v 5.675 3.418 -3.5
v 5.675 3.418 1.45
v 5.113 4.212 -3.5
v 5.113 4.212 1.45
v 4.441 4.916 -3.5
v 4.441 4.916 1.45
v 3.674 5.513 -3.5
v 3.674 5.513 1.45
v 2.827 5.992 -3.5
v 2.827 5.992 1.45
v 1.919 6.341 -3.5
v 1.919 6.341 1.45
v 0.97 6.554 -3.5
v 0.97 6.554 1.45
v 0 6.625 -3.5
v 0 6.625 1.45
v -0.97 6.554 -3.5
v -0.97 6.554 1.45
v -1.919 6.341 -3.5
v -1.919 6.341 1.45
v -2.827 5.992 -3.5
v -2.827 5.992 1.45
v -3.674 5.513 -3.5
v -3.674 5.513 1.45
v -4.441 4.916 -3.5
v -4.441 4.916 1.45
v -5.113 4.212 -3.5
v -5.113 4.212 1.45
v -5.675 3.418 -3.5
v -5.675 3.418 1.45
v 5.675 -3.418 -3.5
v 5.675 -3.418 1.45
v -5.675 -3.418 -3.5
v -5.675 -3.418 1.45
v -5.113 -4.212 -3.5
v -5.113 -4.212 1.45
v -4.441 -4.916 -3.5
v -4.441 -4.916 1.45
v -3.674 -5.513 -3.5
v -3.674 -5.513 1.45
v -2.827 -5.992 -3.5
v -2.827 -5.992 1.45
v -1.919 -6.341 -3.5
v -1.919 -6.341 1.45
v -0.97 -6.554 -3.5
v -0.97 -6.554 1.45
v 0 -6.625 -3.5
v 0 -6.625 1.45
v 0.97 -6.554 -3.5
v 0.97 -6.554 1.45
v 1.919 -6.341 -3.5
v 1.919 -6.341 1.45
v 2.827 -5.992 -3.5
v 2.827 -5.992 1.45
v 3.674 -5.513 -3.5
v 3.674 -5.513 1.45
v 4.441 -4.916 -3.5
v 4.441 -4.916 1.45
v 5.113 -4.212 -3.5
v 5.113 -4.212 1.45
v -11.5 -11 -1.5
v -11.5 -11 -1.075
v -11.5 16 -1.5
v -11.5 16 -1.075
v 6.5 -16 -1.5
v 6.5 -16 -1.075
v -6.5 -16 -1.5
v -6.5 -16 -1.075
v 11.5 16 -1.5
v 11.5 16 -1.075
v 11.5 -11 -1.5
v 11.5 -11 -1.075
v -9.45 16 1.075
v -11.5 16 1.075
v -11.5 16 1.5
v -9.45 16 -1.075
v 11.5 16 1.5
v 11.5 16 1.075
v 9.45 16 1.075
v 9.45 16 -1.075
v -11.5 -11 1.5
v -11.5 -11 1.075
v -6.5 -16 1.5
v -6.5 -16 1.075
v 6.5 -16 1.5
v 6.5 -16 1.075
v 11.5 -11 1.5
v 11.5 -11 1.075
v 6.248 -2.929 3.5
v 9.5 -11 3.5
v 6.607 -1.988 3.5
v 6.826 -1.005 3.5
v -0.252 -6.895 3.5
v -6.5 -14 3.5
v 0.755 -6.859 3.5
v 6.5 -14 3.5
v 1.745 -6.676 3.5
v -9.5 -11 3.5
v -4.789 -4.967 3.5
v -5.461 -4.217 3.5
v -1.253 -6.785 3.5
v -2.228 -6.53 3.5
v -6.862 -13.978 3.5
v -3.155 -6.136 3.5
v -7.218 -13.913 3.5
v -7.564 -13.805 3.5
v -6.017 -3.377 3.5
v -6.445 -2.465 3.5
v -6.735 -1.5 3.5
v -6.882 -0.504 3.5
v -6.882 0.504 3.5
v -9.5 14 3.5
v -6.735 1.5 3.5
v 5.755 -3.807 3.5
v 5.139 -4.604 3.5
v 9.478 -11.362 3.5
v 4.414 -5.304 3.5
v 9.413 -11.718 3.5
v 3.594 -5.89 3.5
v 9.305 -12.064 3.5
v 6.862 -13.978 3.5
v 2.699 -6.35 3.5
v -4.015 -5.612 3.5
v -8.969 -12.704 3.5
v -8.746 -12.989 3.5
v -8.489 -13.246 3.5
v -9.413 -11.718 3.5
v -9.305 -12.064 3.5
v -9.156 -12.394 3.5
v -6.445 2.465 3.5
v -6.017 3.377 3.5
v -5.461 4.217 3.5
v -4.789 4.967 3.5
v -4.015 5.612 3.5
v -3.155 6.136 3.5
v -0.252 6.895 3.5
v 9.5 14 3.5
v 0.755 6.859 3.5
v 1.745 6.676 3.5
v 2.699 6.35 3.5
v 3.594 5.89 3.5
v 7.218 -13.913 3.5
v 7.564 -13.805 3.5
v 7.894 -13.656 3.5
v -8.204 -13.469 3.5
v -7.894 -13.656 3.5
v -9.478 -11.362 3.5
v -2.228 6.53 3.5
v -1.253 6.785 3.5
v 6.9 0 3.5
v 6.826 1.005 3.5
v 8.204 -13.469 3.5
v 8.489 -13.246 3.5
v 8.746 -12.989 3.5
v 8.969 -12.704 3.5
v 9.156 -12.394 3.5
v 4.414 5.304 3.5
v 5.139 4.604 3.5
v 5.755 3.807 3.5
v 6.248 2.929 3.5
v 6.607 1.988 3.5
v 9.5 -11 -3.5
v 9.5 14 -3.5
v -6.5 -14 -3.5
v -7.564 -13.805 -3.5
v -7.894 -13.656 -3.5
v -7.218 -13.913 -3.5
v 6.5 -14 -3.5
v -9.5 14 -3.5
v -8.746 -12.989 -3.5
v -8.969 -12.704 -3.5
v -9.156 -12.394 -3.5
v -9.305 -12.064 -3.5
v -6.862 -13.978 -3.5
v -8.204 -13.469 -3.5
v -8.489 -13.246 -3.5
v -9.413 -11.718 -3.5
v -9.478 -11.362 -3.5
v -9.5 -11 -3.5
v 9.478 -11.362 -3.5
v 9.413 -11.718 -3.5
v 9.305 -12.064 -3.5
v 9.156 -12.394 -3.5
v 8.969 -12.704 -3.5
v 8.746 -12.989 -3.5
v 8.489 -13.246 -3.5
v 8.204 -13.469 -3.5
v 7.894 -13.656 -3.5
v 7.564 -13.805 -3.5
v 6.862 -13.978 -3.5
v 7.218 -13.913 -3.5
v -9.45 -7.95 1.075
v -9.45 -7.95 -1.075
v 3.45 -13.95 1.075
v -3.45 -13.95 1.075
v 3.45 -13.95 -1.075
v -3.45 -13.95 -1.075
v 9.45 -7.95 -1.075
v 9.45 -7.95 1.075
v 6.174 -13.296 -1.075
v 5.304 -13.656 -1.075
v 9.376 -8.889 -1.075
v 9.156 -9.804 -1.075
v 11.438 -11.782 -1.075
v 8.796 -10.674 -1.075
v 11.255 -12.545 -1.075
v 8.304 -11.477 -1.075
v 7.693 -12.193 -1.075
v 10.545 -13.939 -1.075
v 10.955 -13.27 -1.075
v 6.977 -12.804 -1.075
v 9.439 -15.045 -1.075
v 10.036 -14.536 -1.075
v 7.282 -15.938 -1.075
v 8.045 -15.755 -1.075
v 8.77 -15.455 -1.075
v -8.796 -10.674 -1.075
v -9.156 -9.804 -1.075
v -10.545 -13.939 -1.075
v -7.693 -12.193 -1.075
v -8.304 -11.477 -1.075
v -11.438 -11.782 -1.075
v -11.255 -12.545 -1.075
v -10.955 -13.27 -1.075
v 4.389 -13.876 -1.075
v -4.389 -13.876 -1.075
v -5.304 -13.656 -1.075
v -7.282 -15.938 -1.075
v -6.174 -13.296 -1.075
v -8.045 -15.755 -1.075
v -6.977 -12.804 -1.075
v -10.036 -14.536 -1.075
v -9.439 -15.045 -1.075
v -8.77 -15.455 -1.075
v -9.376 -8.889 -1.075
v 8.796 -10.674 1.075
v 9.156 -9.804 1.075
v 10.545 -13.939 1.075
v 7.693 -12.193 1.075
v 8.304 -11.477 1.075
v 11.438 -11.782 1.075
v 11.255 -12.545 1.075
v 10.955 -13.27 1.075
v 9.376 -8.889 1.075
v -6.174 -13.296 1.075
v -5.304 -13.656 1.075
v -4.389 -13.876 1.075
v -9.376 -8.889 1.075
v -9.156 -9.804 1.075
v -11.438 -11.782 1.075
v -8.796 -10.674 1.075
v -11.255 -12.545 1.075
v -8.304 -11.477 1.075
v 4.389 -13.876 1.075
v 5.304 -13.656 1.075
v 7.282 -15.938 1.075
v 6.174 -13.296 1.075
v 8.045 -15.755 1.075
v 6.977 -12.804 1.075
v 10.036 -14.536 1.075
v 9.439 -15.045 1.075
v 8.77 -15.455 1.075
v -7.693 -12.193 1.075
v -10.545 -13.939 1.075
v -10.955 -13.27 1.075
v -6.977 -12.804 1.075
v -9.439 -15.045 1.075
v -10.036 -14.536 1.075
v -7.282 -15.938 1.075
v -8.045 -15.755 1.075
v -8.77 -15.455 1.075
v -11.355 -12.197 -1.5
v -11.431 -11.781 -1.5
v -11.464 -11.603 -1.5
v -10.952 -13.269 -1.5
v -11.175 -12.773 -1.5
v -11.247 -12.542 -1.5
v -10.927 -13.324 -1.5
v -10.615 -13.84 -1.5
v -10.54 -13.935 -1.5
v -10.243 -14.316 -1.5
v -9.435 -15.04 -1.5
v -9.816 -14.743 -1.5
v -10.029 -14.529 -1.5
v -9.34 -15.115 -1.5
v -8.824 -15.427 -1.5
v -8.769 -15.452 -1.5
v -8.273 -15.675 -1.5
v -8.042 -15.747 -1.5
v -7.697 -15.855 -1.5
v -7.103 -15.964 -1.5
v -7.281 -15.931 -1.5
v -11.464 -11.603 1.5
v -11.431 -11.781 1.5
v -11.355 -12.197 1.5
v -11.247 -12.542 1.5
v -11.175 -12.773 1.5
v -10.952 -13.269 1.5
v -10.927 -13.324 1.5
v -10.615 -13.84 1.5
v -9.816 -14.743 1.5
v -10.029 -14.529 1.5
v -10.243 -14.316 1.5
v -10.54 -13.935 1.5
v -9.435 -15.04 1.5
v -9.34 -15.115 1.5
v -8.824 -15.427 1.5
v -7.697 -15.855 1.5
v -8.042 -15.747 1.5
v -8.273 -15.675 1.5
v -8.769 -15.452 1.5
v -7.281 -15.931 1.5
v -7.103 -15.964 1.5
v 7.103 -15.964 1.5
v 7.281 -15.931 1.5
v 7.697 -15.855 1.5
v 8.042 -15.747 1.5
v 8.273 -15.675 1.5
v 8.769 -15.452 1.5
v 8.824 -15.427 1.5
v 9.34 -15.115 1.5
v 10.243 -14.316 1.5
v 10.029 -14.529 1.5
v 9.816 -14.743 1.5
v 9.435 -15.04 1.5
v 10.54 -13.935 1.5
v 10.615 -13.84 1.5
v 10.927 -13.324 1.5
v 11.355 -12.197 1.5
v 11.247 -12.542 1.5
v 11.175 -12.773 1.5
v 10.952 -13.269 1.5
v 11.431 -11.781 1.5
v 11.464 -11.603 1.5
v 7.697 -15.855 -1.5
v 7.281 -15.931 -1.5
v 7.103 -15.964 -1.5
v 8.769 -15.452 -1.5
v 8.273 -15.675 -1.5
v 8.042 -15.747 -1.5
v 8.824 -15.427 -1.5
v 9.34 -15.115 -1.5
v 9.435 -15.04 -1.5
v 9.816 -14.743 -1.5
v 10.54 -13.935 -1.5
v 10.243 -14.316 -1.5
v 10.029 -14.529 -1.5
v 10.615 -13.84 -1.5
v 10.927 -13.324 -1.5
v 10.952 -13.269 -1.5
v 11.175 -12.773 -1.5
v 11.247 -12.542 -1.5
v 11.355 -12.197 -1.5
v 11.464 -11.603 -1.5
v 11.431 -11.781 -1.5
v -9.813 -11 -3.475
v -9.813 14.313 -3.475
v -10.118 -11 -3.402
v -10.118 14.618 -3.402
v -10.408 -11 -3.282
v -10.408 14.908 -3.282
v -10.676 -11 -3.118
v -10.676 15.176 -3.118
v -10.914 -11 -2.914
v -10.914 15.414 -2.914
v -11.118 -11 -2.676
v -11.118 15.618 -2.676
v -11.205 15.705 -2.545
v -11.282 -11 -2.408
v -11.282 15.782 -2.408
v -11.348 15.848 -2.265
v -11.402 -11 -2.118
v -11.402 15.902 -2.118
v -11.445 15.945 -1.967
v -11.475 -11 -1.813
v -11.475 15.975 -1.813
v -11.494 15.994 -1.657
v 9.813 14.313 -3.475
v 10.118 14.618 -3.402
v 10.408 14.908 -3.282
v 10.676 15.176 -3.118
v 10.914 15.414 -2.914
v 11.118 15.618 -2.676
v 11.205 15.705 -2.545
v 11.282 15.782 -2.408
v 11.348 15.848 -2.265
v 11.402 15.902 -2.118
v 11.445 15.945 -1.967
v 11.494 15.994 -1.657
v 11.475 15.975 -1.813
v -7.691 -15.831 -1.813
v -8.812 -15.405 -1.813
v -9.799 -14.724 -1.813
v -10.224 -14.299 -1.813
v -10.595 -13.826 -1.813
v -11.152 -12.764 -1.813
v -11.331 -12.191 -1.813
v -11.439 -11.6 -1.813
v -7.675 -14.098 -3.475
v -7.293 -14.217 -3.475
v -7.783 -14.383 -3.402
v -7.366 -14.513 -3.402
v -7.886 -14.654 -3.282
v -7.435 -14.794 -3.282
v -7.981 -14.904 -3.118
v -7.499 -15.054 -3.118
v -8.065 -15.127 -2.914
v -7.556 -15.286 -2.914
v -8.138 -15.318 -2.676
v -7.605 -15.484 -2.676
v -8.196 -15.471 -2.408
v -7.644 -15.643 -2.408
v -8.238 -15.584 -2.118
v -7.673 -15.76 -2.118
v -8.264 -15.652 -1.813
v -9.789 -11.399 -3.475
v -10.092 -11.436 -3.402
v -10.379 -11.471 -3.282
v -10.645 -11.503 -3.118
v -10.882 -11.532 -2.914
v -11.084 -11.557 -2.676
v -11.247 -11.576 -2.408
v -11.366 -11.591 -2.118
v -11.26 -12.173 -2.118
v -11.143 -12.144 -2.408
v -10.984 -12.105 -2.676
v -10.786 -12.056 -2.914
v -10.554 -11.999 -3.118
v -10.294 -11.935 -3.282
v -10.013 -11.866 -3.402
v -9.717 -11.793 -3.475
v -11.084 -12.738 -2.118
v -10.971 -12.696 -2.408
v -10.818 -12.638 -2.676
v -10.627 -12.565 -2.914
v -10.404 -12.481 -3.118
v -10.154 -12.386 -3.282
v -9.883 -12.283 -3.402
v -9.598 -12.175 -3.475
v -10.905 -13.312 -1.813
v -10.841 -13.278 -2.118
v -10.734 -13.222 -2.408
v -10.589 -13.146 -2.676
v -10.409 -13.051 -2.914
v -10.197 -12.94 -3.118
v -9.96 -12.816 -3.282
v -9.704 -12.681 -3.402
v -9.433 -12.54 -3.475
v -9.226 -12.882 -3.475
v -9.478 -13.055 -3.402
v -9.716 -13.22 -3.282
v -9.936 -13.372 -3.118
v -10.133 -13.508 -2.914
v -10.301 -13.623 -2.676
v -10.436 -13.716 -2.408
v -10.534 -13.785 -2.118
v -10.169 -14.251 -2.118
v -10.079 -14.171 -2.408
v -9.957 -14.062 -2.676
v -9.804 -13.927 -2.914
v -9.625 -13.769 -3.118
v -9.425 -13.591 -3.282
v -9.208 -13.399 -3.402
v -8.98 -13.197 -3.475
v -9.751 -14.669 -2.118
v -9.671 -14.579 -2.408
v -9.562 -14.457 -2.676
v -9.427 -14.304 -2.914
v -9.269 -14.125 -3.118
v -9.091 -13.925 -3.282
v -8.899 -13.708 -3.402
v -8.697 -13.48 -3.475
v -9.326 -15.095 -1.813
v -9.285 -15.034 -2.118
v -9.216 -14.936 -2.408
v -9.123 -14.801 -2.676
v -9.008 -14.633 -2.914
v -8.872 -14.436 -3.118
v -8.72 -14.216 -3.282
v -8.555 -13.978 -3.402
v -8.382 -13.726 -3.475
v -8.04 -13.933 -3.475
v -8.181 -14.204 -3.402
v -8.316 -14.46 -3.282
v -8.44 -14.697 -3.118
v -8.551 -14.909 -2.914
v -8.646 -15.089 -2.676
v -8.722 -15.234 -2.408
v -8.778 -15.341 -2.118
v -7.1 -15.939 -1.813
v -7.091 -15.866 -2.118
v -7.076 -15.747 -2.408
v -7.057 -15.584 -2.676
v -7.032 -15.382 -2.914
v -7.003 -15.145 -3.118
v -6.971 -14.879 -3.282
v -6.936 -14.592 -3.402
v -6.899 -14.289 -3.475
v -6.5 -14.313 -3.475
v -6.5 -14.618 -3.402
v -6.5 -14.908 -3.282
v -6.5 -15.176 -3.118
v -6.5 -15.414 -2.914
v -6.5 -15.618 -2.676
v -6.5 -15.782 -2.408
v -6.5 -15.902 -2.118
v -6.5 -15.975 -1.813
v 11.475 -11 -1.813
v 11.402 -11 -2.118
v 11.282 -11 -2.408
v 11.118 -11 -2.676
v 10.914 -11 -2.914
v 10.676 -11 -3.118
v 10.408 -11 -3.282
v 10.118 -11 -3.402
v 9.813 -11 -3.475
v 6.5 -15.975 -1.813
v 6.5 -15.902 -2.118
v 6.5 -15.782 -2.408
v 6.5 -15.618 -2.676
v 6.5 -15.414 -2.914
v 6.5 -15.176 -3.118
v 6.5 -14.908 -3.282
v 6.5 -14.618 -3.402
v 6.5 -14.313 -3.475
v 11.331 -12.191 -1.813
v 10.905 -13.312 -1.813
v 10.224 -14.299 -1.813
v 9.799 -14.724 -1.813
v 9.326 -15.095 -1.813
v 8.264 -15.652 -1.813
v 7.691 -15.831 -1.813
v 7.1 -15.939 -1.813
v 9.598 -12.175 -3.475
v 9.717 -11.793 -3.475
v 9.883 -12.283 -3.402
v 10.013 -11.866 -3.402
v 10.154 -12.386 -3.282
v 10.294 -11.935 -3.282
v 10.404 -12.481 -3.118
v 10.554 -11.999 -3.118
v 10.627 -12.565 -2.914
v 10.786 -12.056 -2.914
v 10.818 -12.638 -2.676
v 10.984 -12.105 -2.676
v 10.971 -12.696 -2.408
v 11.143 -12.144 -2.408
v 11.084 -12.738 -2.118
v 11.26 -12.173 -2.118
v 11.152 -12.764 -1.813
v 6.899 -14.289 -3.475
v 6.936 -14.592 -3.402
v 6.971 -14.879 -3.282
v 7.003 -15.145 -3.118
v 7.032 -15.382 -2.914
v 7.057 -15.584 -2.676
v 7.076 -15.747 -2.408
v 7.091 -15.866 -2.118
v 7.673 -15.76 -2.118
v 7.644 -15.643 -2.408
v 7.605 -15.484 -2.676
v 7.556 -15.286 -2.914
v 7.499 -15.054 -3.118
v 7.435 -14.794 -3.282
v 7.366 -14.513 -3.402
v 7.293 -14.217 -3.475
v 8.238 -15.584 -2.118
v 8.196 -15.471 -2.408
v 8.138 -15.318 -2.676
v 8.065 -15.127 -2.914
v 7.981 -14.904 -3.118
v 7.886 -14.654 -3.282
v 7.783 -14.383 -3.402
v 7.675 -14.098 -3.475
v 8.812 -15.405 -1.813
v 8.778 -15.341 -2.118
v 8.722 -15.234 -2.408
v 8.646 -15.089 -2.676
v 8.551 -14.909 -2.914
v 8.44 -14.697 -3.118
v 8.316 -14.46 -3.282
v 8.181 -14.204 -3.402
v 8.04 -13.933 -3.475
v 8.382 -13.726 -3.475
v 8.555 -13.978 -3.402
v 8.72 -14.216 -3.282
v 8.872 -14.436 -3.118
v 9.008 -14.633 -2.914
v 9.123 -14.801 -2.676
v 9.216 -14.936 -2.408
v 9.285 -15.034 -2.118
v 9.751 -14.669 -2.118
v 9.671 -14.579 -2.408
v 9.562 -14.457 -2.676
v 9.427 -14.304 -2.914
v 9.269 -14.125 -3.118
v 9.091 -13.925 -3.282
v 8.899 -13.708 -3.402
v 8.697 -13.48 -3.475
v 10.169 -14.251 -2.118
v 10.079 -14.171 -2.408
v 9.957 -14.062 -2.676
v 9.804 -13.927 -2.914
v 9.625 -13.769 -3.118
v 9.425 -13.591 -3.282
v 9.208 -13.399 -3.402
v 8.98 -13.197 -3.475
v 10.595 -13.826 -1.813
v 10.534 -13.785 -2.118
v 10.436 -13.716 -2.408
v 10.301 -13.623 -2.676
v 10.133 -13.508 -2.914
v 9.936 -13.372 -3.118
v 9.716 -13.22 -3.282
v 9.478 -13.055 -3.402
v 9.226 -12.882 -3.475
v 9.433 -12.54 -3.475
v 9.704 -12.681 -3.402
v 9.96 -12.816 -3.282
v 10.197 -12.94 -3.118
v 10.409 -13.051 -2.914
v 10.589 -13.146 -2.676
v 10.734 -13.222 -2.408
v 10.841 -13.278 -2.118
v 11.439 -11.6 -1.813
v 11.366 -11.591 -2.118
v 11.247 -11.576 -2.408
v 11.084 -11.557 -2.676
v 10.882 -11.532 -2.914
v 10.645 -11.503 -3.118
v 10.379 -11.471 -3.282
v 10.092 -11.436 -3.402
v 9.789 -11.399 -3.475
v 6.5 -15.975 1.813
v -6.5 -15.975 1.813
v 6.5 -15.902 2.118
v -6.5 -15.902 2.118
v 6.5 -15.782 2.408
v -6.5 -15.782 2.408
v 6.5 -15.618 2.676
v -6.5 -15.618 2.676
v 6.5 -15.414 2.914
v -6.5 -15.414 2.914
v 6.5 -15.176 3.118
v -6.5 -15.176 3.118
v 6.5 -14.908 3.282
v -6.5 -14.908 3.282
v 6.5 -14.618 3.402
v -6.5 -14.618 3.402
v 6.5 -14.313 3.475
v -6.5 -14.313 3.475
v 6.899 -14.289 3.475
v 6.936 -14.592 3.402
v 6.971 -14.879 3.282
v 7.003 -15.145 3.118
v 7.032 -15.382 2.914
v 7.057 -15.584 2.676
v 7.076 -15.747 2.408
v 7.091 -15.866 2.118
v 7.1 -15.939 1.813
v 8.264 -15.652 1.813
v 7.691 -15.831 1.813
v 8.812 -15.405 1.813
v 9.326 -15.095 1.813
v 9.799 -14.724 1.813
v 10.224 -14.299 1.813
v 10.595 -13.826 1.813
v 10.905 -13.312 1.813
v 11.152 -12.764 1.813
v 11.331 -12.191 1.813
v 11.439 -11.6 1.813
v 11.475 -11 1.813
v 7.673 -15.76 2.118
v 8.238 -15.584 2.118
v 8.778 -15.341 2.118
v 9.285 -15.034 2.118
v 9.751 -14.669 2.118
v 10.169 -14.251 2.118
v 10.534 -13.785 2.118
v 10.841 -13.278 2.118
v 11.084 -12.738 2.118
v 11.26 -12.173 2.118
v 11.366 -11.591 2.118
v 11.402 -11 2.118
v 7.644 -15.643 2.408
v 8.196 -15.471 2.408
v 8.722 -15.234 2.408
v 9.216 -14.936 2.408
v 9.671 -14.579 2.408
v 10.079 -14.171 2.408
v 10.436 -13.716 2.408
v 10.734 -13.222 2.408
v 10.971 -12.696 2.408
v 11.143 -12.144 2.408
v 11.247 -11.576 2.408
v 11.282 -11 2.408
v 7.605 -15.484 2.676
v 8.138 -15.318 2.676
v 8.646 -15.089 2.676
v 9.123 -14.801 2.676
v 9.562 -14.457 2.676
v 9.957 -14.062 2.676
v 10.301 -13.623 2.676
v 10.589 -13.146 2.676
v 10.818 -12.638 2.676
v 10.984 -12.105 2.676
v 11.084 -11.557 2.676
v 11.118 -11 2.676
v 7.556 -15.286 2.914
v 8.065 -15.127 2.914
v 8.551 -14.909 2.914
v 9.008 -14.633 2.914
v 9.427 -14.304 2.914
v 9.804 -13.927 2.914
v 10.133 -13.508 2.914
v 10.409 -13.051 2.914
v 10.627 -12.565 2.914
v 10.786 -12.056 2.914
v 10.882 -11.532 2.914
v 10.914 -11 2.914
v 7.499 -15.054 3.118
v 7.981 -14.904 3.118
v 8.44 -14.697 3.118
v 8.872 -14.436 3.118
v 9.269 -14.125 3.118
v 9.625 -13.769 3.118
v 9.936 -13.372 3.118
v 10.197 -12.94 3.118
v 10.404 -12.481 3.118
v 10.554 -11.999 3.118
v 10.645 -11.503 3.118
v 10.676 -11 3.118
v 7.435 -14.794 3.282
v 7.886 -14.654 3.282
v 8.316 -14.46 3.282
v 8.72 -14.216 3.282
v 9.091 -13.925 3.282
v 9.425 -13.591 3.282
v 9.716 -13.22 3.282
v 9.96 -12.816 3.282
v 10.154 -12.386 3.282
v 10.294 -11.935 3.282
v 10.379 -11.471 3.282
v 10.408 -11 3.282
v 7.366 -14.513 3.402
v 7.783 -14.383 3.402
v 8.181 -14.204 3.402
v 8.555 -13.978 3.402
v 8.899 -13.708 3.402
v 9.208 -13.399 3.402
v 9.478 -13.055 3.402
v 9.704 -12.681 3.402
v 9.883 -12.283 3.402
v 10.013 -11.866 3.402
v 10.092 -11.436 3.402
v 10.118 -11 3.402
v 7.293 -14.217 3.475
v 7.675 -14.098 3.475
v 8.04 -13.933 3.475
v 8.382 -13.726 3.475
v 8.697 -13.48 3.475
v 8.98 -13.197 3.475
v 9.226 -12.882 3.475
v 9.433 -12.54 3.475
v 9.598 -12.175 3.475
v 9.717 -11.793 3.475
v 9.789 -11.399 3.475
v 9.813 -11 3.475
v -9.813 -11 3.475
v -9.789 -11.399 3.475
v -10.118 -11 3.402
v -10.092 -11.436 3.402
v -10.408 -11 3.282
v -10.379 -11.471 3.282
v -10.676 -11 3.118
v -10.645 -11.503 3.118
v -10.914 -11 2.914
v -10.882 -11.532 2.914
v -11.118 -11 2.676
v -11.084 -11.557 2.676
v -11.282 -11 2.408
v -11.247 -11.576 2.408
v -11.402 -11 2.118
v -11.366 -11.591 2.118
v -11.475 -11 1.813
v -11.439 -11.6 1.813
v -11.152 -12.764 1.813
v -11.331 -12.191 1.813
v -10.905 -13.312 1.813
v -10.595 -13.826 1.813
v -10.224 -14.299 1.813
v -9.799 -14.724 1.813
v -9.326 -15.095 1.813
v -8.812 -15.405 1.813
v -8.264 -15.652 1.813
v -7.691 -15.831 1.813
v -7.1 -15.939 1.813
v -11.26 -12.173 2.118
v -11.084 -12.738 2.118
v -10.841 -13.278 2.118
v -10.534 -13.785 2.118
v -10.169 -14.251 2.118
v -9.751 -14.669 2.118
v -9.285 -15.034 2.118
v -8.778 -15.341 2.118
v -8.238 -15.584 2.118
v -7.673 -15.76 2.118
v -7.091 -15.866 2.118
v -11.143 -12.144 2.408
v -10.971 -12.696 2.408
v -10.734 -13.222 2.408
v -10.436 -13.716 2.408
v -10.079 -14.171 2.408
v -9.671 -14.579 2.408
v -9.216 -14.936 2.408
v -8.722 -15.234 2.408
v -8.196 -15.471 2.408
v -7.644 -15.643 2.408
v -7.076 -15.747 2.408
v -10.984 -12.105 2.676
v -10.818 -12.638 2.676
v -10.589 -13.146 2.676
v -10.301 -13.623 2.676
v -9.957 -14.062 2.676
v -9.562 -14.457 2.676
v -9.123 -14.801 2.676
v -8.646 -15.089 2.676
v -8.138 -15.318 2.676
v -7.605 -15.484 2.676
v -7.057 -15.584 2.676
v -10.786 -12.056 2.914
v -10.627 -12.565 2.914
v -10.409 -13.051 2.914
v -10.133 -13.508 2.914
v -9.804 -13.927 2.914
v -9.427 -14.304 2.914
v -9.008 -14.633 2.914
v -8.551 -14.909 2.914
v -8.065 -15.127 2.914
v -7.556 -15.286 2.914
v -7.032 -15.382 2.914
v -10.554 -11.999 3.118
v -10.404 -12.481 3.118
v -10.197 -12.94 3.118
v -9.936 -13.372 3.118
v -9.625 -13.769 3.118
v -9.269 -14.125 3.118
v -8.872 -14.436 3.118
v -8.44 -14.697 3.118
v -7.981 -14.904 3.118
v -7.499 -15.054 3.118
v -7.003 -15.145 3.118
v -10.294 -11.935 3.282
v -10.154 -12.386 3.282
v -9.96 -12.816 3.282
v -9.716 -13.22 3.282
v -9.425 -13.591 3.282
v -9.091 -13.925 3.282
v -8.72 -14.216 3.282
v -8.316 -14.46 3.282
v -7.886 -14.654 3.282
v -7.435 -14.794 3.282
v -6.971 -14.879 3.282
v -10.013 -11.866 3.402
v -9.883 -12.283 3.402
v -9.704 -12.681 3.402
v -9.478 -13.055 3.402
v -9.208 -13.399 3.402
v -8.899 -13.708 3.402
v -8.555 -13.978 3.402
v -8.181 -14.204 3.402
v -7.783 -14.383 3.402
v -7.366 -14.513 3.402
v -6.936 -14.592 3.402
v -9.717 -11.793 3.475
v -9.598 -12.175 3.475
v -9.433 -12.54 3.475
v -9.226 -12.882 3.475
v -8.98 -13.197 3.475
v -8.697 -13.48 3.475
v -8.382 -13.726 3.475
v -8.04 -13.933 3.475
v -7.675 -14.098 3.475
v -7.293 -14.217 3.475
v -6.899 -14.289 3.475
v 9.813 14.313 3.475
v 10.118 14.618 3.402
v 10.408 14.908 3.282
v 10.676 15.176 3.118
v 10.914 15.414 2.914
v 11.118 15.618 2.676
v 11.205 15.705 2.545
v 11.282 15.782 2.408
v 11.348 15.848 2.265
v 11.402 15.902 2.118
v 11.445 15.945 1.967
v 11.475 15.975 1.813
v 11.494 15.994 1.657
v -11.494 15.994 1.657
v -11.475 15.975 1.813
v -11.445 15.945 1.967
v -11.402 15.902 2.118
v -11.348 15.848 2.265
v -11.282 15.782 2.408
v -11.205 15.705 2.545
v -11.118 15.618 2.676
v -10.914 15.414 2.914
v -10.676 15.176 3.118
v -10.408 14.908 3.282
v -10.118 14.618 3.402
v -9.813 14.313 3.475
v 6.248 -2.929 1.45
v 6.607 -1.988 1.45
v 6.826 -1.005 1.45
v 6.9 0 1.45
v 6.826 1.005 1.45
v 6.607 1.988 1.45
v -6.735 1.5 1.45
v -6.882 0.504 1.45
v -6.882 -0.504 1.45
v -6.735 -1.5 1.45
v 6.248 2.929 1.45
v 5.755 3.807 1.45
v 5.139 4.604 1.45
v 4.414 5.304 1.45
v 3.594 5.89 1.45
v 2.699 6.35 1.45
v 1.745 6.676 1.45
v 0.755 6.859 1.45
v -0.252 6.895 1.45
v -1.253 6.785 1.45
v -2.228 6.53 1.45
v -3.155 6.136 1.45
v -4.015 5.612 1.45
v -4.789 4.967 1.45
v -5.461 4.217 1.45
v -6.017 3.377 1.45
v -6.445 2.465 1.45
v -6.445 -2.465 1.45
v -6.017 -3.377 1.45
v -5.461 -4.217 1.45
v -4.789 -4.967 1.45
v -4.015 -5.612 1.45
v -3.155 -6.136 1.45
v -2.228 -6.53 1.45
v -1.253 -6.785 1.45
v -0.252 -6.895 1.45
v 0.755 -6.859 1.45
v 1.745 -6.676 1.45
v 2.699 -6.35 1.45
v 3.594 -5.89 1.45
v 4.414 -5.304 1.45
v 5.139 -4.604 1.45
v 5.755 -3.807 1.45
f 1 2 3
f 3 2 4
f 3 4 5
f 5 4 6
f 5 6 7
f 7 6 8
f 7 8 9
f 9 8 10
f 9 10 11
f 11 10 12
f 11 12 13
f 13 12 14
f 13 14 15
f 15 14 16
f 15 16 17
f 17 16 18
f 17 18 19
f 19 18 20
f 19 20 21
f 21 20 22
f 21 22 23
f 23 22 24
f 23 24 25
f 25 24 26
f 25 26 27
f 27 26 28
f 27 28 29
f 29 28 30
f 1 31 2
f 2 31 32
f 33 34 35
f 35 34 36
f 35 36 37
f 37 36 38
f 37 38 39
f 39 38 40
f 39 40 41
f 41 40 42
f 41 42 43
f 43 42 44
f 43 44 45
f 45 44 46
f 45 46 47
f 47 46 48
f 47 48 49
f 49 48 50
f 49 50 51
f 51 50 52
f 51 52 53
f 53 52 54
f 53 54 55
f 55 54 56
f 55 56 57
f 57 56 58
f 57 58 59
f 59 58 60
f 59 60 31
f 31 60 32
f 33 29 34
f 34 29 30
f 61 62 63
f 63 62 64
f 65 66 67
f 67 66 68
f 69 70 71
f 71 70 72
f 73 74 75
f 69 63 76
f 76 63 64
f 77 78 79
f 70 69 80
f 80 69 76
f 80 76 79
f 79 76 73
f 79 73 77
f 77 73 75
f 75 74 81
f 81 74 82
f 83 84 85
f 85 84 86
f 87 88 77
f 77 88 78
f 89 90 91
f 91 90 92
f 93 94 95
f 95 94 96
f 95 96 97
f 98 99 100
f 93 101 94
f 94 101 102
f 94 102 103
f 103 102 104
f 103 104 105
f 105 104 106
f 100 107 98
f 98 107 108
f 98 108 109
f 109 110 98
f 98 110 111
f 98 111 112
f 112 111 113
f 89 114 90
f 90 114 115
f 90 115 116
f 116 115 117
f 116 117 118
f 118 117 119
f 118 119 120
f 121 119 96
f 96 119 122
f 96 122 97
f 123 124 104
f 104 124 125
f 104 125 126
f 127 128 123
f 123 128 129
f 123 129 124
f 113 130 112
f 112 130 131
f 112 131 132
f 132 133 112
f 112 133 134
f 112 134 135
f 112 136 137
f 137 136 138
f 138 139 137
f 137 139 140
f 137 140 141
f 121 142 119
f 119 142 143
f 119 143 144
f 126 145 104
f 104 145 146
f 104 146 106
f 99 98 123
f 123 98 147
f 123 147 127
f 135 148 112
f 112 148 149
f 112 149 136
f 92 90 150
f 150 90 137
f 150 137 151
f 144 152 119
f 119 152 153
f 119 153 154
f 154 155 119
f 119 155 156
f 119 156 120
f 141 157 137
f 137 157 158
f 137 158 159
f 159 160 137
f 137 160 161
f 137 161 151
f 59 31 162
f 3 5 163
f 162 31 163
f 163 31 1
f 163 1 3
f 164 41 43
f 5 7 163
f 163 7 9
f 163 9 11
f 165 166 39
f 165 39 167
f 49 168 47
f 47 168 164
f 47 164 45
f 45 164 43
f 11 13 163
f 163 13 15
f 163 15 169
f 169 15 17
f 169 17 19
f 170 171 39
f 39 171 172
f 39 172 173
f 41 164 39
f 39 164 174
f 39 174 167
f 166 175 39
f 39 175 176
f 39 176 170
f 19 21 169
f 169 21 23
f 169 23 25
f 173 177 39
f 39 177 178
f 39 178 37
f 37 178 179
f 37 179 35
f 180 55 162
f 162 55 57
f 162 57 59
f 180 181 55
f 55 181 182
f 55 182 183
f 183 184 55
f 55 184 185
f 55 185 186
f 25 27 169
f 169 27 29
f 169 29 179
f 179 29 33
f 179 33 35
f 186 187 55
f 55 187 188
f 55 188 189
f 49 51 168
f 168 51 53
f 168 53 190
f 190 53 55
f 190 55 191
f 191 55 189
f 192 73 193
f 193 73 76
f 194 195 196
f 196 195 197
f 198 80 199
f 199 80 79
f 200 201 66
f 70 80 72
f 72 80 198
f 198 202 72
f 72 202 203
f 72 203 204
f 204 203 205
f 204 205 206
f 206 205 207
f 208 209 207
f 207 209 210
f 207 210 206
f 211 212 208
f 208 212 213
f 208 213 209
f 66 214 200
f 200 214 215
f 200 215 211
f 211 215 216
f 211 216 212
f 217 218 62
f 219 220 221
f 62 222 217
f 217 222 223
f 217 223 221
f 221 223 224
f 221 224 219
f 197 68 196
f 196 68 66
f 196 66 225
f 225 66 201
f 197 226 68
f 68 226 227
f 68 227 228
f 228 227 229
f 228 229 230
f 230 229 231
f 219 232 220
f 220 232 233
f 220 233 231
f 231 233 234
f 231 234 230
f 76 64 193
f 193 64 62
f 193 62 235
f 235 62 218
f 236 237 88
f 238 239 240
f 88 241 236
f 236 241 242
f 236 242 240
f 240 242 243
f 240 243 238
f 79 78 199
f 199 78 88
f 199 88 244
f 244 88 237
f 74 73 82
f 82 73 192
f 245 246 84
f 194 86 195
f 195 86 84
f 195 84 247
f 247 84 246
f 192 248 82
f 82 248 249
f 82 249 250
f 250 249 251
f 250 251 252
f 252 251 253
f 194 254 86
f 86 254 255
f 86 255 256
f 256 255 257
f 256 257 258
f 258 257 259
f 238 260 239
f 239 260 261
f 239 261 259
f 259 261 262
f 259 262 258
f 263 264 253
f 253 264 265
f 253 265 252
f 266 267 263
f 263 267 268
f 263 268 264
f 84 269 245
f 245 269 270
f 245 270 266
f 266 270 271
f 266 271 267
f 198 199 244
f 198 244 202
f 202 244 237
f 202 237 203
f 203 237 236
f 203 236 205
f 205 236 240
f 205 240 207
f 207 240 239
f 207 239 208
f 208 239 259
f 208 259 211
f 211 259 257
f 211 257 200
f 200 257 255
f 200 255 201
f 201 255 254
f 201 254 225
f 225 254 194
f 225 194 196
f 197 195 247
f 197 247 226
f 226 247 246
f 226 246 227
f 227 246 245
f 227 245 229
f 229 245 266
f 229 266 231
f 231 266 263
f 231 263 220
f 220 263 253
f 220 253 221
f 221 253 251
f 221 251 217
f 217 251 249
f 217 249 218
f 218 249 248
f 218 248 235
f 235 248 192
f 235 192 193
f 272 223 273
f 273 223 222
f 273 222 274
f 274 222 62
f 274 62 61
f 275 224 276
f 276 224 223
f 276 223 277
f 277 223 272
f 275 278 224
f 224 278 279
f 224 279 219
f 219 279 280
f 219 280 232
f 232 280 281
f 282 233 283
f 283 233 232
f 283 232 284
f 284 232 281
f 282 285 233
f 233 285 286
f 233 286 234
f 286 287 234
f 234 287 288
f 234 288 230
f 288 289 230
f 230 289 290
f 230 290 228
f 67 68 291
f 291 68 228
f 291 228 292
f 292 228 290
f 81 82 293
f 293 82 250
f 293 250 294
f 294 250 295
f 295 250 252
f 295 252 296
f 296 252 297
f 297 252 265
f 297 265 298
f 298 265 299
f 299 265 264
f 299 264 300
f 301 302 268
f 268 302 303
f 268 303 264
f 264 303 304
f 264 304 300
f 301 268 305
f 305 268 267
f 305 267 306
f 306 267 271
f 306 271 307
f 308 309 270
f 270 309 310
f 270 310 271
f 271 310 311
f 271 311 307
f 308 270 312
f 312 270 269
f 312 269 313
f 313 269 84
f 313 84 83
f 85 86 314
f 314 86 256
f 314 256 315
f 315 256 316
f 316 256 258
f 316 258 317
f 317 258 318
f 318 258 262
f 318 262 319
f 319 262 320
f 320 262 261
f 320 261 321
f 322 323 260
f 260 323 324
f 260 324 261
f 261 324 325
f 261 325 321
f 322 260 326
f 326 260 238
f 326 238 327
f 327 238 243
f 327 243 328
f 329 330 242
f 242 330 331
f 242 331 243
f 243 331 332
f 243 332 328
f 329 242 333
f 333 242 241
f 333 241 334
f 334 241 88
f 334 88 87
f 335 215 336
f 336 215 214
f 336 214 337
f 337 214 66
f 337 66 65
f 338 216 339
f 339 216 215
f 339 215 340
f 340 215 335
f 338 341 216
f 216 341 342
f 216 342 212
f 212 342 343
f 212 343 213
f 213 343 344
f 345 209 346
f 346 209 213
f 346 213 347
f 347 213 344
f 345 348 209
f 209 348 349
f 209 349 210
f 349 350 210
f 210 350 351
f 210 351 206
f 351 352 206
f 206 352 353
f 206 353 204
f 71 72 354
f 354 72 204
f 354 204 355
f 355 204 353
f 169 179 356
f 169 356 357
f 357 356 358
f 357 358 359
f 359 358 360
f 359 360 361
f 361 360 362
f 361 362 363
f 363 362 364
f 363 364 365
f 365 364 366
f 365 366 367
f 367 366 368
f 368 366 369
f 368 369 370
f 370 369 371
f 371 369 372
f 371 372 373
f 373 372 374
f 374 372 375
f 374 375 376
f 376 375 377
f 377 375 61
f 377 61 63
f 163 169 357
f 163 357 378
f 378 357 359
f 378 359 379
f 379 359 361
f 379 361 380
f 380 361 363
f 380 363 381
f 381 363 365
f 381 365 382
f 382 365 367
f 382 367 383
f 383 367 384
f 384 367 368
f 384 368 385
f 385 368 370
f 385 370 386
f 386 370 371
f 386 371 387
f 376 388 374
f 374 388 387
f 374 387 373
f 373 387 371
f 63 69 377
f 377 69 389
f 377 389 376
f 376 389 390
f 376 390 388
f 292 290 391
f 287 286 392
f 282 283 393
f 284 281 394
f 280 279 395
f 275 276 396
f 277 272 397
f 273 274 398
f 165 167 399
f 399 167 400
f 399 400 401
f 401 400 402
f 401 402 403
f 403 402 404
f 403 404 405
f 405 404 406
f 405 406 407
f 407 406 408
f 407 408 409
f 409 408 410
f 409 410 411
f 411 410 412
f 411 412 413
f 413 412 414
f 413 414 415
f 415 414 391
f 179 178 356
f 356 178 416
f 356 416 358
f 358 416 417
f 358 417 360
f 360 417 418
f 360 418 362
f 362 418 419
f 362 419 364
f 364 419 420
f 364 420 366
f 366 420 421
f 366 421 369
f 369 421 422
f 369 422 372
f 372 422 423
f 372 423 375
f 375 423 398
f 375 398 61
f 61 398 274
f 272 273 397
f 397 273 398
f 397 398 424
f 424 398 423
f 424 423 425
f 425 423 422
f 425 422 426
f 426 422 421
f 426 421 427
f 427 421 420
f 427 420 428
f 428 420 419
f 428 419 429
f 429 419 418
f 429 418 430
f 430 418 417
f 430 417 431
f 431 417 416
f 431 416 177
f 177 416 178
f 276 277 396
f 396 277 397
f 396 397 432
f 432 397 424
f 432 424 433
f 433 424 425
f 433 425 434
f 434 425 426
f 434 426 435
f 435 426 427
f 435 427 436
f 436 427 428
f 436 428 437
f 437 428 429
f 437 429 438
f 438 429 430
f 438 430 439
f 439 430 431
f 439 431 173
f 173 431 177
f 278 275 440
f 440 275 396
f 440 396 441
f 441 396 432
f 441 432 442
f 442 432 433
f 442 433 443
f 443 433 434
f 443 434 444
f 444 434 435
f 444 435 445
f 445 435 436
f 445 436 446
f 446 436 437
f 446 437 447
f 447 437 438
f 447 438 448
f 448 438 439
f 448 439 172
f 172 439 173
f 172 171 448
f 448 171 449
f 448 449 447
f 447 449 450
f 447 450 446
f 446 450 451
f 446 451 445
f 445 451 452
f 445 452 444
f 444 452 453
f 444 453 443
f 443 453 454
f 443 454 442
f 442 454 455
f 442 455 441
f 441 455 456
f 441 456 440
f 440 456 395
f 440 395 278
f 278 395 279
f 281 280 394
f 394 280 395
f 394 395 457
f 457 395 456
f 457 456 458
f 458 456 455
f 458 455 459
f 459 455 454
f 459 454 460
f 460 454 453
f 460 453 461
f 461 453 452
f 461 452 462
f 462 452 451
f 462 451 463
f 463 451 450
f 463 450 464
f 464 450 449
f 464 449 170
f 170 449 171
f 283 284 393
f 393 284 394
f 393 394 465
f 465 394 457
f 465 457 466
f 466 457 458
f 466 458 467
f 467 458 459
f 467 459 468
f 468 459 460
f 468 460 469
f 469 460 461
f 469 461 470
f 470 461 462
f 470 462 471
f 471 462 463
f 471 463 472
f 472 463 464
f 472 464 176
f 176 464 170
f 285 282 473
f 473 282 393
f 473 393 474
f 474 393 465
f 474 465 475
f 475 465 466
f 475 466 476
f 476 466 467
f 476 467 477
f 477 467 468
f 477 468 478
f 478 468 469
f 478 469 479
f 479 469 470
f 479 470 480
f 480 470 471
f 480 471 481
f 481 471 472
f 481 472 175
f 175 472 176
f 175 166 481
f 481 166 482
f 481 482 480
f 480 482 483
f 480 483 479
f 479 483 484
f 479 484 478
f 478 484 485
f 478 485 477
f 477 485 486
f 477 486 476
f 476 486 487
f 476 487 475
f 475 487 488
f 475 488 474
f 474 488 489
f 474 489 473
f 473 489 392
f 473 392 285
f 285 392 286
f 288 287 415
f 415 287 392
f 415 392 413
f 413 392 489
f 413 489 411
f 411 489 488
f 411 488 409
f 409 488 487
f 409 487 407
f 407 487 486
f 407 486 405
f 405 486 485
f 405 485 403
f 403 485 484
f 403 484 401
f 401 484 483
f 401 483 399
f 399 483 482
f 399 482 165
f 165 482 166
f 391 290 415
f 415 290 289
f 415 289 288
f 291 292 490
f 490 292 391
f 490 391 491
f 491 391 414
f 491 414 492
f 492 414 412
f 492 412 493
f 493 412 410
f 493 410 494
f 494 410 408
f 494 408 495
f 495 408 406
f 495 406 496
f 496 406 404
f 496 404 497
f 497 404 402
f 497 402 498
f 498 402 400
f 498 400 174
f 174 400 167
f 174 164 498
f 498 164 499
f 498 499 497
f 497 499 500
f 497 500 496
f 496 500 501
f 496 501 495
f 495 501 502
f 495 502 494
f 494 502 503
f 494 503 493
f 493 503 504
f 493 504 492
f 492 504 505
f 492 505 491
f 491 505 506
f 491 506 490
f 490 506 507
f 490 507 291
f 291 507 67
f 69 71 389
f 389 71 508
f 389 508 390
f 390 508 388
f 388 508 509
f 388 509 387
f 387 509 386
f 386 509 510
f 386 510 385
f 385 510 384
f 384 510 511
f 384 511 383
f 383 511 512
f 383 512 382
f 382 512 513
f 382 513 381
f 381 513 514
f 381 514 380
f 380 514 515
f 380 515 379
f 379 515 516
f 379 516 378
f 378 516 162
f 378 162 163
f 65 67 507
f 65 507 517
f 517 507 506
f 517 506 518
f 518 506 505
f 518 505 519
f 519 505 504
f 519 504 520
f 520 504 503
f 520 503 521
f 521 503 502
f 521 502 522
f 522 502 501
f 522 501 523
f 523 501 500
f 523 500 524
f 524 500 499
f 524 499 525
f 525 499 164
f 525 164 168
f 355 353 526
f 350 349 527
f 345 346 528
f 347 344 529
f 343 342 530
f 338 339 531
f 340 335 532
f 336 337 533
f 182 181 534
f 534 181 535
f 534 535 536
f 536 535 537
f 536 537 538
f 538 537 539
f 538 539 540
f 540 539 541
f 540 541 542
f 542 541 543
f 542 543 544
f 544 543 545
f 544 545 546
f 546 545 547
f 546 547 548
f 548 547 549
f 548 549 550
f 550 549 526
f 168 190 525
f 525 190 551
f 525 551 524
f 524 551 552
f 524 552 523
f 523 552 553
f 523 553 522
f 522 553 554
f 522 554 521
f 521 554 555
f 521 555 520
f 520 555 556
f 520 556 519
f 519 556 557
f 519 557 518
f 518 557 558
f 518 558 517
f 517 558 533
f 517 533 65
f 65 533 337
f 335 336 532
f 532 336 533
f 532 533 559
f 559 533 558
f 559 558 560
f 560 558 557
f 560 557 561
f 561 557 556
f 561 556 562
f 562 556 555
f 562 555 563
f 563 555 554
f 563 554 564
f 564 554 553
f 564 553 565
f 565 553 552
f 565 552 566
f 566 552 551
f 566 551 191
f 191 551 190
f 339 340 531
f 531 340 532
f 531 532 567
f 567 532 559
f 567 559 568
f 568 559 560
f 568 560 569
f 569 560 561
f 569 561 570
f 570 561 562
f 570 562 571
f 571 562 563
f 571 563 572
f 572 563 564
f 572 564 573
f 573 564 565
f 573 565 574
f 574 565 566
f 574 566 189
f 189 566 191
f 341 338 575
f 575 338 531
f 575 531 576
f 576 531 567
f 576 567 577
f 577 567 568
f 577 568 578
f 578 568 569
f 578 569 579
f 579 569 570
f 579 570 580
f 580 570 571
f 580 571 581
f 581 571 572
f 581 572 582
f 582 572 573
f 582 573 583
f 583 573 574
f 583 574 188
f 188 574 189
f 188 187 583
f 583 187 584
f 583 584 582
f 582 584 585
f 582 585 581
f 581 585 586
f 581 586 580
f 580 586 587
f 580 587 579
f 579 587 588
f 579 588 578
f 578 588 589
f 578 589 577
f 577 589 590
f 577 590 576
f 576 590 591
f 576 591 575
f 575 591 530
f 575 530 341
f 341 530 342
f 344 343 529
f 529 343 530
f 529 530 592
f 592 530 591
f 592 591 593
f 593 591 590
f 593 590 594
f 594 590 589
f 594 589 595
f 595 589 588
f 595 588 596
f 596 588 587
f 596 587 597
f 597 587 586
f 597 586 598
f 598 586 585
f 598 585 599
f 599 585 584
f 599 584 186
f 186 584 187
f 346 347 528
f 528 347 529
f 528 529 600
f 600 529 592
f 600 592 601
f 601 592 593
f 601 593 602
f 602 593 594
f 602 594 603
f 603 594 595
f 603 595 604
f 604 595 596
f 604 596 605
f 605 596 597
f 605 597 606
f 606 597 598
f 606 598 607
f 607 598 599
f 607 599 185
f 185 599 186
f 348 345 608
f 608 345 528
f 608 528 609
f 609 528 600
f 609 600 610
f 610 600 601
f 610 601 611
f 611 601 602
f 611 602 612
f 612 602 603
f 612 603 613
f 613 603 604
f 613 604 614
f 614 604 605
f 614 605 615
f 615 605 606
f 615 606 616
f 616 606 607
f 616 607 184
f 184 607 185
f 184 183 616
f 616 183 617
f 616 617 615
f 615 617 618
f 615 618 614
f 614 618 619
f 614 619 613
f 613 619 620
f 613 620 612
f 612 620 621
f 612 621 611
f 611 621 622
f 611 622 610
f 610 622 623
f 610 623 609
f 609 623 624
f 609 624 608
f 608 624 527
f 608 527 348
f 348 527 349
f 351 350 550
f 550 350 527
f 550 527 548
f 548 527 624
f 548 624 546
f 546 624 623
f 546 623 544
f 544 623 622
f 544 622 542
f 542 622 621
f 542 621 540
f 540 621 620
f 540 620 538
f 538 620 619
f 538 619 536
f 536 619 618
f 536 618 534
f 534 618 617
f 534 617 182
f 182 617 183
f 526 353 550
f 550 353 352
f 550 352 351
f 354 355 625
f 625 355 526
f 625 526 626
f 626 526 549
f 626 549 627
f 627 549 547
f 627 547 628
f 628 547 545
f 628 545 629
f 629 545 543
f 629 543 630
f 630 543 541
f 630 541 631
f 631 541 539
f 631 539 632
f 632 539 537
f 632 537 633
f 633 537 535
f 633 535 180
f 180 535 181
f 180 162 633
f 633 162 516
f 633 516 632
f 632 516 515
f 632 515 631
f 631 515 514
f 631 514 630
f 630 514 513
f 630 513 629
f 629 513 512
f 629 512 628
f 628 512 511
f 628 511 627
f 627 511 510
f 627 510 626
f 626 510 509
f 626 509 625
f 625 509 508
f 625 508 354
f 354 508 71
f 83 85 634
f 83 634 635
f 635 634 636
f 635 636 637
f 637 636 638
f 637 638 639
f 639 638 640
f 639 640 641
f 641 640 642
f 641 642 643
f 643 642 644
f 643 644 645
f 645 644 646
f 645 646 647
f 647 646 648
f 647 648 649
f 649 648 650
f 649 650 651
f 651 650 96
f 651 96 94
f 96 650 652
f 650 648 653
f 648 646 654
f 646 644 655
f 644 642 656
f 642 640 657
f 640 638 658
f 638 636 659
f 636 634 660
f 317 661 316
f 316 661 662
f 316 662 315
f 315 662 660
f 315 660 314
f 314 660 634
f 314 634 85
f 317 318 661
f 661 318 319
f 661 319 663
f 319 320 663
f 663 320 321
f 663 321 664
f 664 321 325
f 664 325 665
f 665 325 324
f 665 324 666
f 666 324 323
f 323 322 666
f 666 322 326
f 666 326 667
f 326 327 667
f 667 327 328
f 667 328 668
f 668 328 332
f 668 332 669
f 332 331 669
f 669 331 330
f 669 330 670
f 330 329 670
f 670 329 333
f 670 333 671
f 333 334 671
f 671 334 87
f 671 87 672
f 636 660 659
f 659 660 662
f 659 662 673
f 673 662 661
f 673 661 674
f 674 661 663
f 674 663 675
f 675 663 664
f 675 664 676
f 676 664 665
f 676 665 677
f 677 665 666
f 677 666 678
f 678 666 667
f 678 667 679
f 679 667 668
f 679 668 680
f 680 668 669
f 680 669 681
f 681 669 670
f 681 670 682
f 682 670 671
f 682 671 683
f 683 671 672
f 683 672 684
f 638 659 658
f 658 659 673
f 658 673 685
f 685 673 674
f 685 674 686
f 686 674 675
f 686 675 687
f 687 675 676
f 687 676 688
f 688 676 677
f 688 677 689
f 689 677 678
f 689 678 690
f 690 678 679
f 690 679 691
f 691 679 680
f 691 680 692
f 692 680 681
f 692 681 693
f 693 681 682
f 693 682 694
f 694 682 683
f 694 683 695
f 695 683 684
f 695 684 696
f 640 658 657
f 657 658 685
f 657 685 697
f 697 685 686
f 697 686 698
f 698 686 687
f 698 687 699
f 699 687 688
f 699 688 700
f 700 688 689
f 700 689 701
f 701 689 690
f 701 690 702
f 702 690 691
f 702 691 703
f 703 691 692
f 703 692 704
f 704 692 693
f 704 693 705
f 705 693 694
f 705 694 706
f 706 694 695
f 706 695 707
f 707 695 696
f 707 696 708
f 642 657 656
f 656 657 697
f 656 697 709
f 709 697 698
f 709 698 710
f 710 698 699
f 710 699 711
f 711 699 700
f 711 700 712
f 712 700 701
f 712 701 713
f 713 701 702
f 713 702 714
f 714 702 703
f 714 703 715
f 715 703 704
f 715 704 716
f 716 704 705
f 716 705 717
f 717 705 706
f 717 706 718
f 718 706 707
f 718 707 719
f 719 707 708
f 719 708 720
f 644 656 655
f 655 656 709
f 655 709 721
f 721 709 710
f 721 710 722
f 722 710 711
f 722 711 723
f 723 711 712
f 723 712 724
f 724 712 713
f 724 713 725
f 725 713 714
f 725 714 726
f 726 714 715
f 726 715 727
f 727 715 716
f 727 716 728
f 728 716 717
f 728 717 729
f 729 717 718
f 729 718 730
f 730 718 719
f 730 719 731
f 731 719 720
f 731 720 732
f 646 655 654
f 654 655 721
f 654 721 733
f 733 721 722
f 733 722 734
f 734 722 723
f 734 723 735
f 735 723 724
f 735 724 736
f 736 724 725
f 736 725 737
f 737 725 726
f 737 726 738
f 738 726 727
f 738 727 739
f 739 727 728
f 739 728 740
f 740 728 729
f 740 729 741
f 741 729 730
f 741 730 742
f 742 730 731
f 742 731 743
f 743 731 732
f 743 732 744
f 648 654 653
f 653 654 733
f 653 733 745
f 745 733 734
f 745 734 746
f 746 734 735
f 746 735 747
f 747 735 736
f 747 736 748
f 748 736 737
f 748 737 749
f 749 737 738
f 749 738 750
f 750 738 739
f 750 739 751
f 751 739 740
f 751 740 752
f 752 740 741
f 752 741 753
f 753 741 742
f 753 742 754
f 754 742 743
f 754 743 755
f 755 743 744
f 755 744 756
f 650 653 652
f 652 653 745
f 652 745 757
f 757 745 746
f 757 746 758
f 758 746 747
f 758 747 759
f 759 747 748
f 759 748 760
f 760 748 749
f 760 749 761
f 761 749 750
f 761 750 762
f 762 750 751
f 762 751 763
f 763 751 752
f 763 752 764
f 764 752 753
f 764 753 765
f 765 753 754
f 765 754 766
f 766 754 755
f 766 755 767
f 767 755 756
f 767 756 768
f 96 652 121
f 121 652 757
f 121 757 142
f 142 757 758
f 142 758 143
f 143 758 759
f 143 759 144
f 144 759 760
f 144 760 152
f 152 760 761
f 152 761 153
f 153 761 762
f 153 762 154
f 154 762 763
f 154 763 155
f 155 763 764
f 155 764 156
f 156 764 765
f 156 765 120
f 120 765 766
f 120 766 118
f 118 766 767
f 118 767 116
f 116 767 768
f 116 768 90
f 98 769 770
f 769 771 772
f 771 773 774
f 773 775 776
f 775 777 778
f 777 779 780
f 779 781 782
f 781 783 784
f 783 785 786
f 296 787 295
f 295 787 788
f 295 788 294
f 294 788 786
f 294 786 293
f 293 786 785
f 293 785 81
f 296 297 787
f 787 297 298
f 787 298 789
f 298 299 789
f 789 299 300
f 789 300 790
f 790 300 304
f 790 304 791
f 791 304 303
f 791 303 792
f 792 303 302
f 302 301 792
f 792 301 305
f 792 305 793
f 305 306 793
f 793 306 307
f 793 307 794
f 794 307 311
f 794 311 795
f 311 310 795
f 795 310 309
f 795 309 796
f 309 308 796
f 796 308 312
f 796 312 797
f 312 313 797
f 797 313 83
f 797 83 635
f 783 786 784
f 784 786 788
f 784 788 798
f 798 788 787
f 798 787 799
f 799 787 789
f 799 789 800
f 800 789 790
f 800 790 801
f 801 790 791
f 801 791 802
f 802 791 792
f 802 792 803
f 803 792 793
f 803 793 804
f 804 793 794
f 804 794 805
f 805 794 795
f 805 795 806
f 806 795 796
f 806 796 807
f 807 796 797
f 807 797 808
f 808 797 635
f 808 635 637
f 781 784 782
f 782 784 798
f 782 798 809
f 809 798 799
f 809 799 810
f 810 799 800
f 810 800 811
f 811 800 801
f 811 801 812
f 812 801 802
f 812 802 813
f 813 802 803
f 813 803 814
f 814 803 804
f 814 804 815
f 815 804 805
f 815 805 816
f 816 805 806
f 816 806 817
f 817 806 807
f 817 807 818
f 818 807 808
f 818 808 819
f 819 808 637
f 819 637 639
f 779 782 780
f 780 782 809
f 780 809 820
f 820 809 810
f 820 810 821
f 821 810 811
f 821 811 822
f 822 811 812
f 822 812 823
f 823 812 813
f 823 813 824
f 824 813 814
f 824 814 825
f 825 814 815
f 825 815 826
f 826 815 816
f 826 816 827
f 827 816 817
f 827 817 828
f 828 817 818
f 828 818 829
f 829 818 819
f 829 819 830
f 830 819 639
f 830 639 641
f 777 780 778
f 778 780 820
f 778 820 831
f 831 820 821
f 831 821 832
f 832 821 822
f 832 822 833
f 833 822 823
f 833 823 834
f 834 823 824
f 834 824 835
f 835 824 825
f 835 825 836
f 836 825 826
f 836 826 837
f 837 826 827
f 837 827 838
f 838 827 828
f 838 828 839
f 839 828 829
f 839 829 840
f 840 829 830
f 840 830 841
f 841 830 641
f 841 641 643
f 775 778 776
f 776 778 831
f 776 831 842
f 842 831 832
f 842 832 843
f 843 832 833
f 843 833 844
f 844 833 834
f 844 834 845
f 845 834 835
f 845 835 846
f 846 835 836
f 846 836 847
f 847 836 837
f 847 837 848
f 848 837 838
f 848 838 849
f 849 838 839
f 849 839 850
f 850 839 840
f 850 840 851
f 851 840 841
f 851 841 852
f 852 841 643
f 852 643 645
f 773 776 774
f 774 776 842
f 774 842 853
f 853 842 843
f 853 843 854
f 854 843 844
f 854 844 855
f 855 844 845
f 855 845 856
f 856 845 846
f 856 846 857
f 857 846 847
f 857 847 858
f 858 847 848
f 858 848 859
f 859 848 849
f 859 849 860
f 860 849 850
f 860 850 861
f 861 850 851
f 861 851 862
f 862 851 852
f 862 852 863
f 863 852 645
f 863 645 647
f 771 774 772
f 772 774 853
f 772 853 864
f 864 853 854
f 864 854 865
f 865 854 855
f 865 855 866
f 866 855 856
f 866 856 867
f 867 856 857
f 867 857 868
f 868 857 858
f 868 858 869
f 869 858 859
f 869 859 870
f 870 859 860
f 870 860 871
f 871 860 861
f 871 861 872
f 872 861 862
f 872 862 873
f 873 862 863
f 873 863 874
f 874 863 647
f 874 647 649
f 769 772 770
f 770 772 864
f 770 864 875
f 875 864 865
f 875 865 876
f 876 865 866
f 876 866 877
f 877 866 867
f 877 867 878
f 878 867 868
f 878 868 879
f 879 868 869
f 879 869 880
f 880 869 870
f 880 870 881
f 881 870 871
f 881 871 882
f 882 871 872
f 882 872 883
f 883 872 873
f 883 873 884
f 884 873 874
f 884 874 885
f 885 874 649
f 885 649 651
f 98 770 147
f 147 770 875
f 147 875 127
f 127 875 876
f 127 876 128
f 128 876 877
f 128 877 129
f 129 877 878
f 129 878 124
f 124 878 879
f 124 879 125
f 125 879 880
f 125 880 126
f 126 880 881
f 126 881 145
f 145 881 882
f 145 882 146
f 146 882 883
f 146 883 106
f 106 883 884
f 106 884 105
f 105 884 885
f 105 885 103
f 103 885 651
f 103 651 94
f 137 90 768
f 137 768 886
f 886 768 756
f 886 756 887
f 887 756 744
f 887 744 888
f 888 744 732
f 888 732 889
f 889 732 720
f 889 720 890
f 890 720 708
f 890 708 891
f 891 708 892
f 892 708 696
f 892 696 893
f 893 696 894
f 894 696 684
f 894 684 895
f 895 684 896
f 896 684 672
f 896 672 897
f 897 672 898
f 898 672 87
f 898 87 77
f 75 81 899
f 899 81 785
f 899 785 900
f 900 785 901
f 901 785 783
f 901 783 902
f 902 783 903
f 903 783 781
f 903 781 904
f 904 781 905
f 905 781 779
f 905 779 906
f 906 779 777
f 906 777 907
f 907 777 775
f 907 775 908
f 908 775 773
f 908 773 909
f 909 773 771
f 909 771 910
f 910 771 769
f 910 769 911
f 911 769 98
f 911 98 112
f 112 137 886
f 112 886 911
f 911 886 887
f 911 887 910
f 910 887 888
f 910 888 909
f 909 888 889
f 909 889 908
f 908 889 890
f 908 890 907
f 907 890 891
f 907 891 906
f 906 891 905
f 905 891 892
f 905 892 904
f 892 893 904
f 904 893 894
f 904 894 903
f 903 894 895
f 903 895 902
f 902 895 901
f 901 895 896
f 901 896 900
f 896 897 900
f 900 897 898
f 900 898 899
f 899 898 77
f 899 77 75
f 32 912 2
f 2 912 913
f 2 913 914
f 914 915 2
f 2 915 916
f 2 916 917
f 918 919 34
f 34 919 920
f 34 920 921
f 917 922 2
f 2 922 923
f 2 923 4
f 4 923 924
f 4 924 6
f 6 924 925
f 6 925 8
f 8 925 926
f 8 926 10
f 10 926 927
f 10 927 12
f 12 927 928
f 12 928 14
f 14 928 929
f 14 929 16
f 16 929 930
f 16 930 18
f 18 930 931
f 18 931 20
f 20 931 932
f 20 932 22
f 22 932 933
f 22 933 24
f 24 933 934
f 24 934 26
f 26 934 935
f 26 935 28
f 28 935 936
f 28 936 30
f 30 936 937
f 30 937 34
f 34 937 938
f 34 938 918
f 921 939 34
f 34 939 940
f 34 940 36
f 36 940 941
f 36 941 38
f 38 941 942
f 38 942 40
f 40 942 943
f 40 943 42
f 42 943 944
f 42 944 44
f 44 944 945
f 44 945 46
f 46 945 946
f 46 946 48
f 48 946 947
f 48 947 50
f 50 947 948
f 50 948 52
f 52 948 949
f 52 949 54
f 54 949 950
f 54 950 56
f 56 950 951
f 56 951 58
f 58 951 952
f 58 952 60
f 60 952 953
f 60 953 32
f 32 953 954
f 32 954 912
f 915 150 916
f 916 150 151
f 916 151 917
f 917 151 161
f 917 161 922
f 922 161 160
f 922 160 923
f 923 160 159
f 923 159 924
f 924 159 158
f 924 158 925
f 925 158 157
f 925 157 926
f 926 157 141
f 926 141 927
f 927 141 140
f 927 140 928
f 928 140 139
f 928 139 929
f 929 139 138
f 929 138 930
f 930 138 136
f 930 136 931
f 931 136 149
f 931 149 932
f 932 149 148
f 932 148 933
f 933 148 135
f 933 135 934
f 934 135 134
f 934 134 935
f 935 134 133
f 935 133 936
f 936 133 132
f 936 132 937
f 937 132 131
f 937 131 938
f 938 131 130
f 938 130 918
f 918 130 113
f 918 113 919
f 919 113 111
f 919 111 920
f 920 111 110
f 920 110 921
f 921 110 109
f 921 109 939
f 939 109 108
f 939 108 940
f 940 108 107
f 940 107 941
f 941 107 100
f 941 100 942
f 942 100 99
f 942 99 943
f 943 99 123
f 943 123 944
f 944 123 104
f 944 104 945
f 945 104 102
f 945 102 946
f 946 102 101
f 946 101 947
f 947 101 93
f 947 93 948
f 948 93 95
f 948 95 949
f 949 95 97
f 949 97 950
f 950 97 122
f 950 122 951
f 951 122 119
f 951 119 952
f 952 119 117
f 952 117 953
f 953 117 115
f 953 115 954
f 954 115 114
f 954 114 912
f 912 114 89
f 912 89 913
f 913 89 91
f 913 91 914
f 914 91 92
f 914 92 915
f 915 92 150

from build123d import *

# Parameters (mm, degrees)
SKETCH1_W           = 23
SKETCH1_H           = 32
BOSS_EXTRUDE1_DEPTH = 3.5
CUT_EXTRUDE1_DEPTH  = 1.075
FILLET1_R           = 6
FILLET2_R           = 5
FILLET3_R           = 2
CUT_EXTRUDE2_DEPTH  = 21.910523666
SKETCH5_R           = 6.9
CUT_EXTRUDE3_DEPTH  = 2.05


with BuildPart() as part:
    # Sketch1 → Boss-Extrude1 (new, symmetric)
    with BuildSketch(Plane.XY):
        Rectangle(SKETCH1_W, SKETCH1_H)
    extrude(amount=BOSS_EXTRUDE1_DEPTH, both=True)

    # Sketch2 → Cut-Extrude1 (cut, symmetric)
    with BuildSketch(Plane.XY):
        Polygon((-9.45, 16), (-11.5, 16), (-11.5, -16), (11.5, -16), (11.5, 16), (9.45, 16), (9.45, -13.95), (-9.45, -13.95), align=None)
    extrude(amount=CUT_EXTRUDE1_DEPTH, both=True, mode=Mode.SUBTRACT)

    # Fillet1
    fillet1_edges = [part.edges().sort_by_distance(p)[0] for p in [
        (-9.45, -13.95, 0),
        (9.45, -13.95, 0),
    ]]
    fillet(fillet1_edges, radius=FILLET1_R)

    # Fillet2
    fillet2_edges = [part.edges().sort_by_distance(p)[0] for p in [
        (11.5, -16, -2.2875),
        (-11.5, -16, -2.2875),
        (11.5, -16, 2.2875),
        (-11.5, -16, 2.2875),
    ]]
    fillet(fillet2_edges, radius=FILLET2_R)

    # Fillet3
    fillet3_edges = [part.edges().sort_by_distance(p)[0] for p in [
        (0, 16, 3.5),
        (-11.5, 2.5, 3.5),
        (0, 16, -3.5),
        (0, -16, -3.5),
        (11.5, 2.5, -3.5),
        (10.035533906, -14.535533906, -3.5),
        (-10.035533906, -14.535533906, -3.5),
        (-11.5, 2.5, -3.5),
        (0, -16, 3.5),
        (11.5, 2.5, 3.5),
        (10.035533906, -14.535533906, 3.5),
        (-10.035533906, -14.535533906, 3.5),
    ]]
    fillet(fillet3_edges, radius=FILLET3_R)

    # Sketch3 → Cut-Extrude2 (cut, through all)
    with BuildSketch(Plane.XY.offset(3.5)):
        with BuildLine():
            Line((-5.675, 3.418332927), (-5.675, -3.418332927))
            ThreePointArc((-5.675, -3.418332927), (0, -6.625), (5.675, -3.418332927))
            Line((5.675, -3.418332927), (5.675, 3.418332927))
            ThreePointArc((5.675, 3.418332927), (0, 6.625), (-5.675, 3.418332927))
        make_face()
    extrude(amount=-CUT_EXTRUDE2_DEPTH, mode=Mode.SUBTRACT)

    # Sketch5 → Cut-Extrude3 (cut)
    with BuildSketch(Plane.XY.offset(3.5)):
        Circle(SKETCH5_R)
    extrude(amount=-CUT_EXTRUDE3_DEPTH, mode=Mode.SUBTRACT)


solid = part.part
